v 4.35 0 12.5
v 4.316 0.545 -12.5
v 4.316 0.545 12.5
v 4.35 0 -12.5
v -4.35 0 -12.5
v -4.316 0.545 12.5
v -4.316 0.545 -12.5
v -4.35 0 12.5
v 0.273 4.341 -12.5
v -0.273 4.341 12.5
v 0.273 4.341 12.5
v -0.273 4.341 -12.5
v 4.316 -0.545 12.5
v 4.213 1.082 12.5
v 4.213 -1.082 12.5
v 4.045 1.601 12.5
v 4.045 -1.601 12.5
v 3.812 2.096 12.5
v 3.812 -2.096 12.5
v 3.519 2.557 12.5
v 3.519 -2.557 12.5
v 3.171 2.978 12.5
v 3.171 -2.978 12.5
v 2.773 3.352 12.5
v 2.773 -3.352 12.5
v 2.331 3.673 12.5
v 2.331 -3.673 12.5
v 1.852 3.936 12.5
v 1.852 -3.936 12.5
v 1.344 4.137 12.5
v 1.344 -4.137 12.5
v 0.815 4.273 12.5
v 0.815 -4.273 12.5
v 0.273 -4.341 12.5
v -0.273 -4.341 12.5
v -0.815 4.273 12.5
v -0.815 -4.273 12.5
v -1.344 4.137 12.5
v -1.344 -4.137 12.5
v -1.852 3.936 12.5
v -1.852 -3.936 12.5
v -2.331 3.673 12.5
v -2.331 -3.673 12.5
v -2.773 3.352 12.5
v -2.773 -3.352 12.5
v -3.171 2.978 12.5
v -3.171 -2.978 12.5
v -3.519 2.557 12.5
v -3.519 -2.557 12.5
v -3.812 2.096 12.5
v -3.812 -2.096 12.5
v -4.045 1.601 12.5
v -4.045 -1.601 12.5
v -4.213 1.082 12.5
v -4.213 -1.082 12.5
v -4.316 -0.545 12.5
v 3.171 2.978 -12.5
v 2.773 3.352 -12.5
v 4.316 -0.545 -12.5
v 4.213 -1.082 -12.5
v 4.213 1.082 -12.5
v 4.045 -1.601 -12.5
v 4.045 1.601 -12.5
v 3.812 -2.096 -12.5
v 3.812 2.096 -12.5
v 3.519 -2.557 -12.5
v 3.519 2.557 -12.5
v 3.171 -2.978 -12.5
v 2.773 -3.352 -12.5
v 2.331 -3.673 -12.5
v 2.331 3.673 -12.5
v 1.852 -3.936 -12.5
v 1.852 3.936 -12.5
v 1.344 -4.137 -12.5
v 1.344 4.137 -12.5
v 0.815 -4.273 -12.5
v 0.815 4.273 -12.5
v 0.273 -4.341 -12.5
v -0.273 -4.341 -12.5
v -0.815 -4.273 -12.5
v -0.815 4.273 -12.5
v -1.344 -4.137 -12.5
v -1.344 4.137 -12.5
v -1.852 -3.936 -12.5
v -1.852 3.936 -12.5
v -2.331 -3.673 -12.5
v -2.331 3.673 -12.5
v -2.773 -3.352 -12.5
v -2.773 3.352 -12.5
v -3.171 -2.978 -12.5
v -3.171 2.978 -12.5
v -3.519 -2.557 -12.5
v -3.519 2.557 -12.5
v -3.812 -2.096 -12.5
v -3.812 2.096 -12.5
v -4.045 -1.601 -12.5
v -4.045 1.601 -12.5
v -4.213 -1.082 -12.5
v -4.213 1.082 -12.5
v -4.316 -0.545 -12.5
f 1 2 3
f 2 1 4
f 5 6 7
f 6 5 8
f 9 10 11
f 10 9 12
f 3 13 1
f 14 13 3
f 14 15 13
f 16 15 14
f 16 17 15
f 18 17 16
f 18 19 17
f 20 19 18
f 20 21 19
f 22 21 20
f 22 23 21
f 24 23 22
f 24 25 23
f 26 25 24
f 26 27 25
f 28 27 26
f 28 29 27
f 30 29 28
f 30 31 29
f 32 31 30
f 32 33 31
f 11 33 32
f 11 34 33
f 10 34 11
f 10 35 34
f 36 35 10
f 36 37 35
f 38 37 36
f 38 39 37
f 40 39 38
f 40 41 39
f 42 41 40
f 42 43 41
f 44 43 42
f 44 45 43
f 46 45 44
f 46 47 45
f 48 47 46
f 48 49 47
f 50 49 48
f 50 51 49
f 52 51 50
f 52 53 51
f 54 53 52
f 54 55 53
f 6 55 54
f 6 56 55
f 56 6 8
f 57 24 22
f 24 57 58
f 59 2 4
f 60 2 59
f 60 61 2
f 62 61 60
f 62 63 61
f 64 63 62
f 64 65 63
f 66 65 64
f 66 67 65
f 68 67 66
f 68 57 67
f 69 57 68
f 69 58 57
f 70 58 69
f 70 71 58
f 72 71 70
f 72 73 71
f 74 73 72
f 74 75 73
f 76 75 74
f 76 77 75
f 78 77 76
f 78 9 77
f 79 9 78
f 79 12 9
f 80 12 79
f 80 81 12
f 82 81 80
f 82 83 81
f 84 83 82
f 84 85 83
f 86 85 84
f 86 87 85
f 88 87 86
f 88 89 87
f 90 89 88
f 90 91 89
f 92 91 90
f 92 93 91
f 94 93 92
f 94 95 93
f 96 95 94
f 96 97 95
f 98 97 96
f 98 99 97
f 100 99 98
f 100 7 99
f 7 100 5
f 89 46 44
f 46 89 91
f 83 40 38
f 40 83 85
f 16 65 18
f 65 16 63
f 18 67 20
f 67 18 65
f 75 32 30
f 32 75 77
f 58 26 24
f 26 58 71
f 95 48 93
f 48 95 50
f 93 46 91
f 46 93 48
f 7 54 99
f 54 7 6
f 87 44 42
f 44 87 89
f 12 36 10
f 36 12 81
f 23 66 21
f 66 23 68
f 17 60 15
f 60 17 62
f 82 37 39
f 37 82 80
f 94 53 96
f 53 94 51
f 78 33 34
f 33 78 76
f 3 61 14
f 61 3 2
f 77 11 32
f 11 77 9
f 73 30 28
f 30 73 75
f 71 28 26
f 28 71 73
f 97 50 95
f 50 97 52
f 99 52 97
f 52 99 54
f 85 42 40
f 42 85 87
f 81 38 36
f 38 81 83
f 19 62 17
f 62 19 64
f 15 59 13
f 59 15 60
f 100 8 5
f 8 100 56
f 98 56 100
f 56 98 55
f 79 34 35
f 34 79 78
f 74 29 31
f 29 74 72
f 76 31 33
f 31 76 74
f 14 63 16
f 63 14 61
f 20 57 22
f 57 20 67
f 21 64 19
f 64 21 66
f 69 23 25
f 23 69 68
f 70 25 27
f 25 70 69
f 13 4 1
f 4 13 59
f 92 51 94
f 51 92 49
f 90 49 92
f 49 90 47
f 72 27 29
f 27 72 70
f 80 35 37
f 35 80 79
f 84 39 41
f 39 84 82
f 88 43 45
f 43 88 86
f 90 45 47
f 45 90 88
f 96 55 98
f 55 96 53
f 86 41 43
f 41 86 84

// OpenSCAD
$fn = 50;


difference() {
	union() {
		translate(v = [0, 0, -12.5000000000]) {
			cylinder(h = 25, r = 4.3500000000);
		}
	}
	union() {
		translate(v = [0, 0, -100.0000000000]) {
			cylinder(h = 200, r = 0);
		}
	}
}
